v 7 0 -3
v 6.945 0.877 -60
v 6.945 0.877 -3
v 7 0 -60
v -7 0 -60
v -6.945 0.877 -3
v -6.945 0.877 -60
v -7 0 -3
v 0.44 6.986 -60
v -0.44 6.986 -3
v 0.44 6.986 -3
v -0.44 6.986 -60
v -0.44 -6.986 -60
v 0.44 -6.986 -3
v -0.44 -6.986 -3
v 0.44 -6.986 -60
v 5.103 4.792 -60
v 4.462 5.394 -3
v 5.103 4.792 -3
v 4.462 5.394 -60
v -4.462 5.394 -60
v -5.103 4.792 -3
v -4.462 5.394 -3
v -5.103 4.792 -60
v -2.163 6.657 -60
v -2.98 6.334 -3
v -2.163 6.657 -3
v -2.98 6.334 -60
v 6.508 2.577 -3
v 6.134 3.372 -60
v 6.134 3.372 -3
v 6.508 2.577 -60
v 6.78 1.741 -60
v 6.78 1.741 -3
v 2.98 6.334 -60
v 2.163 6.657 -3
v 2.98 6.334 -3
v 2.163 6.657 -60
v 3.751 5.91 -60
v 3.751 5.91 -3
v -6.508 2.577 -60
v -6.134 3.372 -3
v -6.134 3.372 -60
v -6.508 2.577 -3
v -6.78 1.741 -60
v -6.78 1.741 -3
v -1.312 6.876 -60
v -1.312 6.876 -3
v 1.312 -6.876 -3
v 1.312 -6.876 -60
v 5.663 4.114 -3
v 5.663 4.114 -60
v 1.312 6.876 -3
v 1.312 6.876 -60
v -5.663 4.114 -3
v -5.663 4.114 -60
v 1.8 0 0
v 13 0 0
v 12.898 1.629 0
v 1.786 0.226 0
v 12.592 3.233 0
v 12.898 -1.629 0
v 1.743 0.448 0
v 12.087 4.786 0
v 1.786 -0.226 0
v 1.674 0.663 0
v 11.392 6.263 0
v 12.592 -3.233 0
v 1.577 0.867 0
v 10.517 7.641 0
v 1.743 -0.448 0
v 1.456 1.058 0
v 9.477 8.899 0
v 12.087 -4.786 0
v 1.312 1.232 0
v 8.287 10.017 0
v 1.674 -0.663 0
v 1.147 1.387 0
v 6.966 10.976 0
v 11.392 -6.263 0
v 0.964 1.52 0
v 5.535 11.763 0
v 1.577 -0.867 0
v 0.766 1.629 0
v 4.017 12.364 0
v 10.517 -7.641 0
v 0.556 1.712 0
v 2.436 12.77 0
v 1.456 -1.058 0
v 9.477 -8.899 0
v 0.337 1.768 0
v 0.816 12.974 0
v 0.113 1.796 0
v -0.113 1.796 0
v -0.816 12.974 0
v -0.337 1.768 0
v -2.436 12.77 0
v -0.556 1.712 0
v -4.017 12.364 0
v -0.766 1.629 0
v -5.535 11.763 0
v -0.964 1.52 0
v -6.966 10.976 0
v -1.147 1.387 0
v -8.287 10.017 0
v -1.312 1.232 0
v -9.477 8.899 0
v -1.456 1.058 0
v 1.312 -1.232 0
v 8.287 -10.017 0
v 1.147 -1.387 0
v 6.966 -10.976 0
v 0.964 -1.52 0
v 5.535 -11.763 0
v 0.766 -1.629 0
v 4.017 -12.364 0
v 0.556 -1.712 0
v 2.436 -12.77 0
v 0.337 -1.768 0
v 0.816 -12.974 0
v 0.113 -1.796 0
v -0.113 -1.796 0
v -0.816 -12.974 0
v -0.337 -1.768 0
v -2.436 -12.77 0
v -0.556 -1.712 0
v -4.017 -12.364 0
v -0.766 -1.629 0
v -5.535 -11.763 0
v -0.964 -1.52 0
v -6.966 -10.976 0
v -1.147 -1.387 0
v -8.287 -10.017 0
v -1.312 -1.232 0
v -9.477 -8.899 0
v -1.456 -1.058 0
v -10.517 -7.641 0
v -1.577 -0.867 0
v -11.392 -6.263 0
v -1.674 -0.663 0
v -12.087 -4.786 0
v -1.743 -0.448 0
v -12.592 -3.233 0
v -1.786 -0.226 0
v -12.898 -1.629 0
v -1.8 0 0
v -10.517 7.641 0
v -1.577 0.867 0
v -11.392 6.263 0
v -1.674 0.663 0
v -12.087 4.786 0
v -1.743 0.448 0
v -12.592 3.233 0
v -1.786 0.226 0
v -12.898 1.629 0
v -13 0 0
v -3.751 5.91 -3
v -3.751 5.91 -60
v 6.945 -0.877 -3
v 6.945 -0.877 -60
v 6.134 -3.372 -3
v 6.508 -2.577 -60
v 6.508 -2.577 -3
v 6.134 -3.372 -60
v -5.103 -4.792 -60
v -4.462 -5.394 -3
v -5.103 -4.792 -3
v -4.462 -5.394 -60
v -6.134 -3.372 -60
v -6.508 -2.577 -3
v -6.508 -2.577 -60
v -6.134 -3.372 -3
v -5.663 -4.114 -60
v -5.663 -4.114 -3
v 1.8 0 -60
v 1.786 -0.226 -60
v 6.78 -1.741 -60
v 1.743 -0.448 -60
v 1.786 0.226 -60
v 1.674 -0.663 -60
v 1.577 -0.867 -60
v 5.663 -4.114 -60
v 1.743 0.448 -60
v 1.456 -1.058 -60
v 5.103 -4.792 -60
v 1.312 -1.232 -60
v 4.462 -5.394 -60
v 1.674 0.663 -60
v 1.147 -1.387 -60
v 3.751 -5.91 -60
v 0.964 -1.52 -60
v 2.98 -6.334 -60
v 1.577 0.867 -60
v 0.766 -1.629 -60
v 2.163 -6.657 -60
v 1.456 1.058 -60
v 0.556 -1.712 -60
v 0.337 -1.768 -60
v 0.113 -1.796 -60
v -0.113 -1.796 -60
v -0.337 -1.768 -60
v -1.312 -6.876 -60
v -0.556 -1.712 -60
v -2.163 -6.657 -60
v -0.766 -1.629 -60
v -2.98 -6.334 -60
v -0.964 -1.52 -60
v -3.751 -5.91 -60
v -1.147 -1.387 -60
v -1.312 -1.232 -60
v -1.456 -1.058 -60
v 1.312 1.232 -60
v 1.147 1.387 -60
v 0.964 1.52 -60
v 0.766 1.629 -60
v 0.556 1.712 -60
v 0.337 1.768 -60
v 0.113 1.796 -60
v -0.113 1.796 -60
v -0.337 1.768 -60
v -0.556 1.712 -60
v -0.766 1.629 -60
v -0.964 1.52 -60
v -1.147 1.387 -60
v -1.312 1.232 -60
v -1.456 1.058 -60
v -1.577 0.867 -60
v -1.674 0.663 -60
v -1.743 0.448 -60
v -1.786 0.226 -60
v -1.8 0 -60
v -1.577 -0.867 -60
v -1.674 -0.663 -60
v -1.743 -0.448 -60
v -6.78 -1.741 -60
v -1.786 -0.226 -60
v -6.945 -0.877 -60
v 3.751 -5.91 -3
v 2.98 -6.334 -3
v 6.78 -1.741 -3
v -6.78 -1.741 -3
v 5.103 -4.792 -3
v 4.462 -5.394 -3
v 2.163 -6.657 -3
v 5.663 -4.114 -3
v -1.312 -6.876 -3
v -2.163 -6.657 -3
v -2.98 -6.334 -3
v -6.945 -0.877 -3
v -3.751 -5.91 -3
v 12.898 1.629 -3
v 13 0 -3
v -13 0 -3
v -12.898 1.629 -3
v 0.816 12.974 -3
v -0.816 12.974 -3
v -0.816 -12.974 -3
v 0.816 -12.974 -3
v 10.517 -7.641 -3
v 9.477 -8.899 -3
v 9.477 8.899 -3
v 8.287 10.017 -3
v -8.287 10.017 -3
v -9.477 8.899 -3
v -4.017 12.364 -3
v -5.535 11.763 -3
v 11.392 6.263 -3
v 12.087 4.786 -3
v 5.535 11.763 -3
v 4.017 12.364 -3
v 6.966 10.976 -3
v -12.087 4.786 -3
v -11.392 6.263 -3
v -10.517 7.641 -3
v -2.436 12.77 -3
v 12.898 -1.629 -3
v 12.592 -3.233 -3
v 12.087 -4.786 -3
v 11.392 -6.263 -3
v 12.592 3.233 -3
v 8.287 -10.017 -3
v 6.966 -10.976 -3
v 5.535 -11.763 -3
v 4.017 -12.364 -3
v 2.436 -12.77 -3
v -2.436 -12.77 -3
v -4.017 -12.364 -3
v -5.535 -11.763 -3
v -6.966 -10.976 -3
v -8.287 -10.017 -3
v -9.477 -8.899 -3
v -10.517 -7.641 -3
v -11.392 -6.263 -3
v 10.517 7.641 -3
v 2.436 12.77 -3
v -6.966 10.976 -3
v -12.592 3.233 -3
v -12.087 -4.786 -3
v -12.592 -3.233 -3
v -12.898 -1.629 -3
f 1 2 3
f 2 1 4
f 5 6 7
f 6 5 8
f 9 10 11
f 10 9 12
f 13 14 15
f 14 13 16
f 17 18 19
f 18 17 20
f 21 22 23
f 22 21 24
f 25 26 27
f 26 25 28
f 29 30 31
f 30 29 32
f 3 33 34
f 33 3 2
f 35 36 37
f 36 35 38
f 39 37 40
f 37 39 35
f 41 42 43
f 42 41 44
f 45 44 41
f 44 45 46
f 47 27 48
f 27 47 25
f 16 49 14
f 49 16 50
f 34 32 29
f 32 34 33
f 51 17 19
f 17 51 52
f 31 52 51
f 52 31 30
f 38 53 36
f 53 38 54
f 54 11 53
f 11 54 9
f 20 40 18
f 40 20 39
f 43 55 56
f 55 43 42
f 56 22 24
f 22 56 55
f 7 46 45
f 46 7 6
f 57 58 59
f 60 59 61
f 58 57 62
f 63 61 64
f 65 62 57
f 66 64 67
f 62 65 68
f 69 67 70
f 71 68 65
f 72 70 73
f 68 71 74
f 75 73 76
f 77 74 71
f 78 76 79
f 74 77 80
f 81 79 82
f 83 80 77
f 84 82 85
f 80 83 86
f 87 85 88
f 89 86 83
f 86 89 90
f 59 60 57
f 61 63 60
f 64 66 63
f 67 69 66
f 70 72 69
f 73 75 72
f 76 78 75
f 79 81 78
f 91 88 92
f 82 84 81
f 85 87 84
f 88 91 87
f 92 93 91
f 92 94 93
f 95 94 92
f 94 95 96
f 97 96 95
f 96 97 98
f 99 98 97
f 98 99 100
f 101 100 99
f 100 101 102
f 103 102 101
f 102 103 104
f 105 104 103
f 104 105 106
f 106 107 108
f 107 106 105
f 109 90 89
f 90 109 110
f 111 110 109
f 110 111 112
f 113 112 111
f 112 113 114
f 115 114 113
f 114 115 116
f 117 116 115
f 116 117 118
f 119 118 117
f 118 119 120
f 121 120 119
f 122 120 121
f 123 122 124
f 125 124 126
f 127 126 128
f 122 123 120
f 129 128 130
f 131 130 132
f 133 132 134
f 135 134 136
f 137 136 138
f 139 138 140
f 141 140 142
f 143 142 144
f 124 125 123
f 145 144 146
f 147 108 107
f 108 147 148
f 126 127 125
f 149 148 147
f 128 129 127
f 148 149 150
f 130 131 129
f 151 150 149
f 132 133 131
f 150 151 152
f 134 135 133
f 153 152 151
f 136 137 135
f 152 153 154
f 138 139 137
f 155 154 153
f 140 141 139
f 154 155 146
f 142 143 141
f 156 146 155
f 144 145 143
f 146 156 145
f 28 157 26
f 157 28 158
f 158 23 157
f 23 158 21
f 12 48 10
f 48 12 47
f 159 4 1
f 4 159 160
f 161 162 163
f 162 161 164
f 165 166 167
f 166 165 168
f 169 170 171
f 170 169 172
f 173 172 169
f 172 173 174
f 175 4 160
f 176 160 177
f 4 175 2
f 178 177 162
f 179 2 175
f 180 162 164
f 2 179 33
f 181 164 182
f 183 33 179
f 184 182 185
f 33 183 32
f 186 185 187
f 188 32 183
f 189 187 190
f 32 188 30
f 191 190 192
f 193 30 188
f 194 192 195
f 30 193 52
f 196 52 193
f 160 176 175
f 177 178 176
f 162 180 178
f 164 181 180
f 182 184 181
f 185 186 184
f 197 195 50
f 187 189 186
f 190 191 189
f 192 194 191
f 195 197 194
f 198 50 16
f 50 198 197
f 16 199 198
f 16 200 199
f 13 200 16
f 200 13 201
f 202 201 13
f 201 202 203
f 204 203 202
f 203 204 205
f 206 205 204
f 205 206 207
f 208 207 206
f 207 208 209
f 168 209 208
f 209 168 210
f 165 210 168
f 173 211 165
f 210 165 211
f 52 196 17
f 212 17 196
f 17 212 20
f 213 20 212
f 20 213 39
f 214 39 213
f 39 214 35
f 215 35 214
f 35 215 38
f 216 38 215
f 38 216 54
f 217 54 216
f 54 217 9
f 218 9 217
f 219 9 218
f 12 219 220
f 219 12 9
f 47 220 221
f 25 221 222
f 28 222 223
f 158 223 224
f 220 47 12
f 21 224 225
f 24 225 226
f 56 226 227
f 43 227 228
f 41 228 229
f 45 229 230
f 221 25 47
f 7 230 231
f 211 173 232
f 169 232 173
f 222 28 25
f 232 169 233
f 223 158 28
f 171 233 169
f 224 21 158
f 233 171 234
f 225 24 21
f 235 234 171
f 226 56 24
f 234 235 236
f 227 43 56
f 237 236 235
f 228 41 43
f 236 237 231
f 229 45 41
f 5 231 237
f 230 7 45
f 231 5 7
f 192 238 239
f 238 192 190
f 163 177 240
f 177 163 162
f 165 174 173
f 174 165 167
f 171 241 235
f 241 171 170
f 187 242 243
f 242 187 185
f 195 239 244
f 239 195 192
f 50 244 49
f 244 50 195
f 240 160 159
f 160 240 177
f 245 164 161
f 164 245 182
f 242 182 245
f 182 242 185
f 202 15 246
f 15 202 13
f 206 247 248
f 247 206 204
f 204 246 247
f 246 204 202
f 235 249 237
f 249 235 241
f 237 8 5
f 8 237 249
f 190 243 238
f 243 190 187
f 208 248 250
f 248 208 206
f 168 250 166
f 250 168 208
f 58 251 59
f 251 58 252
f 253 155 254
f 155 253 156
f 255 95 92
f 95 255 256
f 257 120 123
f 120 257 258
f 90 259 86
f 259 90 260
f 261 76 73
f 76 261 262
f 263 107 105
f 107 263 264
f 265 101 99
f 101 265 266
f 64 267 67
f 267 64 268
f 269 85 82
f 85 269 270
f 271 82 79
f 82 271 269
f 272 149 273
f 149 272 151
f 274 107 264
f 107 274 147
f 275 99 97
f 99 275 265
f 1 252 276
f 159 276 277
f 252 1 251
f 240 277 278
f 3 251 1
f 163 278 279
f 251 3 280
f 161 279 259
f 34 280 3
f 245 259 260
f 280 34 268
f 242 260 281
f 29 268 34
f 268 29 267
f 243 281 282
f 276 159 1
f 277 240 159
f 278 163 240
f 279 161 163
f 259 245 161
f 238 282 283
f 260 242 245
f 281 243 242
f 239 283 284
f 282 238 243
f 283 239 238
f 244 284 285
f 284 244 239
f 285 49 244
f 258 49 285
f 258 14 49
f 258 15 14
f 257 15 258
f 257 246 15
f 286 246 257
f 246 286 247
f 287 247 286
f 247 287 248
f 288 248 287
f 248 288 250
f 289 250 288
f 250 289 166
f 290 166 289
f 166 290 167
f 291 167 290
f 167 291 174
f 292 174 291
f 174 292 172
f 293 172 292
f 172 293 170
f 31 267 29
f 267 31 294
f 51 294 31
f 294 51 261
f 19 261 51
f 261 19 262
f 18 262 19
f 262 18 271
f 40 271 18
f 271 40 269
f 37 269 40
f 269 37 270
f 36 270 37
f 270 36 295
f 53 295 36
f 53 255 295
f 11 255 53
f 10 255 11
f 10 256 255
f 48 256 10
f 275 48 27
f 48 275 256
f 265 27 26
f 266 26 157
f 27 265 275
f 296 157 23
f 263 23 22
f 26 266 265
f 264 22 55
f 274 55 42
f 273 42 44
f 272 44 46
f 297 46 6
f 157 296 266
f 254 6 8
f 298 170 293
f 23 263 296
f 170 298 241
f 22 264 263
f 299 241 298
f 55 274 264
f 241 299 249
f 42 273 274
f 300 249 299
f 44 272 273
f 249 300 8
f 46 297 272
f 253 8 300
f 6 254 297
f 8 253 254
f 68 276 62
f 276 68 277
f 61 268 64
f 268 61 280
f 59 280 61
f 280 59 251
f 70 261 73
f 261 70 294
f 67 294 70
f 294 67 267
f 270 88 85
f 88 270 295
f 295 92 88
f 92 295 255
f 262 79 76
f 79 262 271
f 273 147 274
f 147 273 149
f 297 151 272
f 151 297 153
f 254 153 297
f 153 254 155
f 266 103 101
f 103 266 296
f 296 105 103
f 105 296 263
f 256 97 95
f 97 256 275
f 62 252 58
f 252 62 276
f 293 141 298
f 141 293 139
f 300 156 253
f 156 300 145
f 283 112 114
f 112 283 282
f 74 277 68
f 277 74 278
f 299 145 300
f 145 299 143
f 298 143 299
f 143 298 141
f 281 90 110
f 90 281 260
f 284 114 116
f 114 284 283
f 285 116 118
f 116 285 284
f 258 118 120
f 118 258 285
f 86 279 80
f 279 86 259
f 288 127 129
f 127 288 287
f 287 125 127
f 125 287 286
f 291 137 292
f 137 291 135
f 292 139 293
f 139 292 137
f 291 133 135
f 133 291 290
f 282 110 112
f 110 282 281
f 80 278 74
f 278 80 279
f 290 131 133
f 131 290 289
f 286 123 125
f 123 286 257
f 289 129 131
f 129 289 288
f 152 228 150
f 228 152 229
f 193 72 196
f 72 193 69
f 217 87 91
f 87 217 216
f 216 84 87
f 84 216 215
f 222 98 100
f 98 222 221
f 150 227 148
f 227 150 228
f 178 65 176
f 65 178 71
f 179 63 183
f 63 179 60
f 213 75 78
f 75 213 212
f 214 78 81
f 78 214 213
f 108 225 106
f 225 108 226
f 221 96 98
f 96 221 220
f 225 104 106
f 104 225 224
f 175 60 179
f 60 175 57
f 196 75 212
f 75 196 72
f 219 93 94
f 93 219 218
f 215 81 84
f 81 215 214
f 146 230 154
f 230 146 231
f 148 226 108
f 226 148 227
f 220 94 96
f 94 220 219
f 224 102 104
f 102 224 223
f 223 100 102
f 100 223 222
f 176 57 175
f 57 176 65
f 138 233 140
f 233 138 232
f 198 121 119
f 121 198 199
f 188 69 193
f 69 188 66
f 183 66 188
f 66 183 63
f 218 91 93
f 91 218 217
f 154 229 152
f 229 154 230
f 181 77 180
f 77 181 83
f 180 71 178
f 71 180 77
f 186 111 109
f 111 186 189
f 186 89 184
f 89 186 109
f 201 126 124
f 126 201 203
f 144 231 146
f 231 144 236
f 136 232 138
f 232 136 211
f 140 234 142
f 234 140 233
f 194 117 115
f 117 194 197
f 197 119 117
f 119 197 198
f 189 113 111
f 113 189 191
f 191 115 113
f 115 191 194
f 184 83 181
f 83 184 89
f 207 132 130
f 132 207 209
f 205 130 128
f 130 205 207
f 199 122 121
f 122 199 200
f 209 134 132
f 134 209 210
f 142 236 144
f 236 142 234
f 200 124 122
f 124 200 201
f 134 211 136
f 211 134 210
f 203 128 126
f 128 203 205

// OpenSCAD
$fn = 50;


difference() {
	union() {
		translate(v = [0, 0, -60.0000000000]) {
			cylinder(h = 60, r = 7.0000000000);
		}
		translate(v = [0, 0, -3.0000000000]) {
			cylinder(h = 3, r = 13.0000000000);
		}
	}
	union() {
		#translate(v = [0, 0, -60]) {
			cylinder(h = 60, r = 1.8000000000);
		}
	}
}
